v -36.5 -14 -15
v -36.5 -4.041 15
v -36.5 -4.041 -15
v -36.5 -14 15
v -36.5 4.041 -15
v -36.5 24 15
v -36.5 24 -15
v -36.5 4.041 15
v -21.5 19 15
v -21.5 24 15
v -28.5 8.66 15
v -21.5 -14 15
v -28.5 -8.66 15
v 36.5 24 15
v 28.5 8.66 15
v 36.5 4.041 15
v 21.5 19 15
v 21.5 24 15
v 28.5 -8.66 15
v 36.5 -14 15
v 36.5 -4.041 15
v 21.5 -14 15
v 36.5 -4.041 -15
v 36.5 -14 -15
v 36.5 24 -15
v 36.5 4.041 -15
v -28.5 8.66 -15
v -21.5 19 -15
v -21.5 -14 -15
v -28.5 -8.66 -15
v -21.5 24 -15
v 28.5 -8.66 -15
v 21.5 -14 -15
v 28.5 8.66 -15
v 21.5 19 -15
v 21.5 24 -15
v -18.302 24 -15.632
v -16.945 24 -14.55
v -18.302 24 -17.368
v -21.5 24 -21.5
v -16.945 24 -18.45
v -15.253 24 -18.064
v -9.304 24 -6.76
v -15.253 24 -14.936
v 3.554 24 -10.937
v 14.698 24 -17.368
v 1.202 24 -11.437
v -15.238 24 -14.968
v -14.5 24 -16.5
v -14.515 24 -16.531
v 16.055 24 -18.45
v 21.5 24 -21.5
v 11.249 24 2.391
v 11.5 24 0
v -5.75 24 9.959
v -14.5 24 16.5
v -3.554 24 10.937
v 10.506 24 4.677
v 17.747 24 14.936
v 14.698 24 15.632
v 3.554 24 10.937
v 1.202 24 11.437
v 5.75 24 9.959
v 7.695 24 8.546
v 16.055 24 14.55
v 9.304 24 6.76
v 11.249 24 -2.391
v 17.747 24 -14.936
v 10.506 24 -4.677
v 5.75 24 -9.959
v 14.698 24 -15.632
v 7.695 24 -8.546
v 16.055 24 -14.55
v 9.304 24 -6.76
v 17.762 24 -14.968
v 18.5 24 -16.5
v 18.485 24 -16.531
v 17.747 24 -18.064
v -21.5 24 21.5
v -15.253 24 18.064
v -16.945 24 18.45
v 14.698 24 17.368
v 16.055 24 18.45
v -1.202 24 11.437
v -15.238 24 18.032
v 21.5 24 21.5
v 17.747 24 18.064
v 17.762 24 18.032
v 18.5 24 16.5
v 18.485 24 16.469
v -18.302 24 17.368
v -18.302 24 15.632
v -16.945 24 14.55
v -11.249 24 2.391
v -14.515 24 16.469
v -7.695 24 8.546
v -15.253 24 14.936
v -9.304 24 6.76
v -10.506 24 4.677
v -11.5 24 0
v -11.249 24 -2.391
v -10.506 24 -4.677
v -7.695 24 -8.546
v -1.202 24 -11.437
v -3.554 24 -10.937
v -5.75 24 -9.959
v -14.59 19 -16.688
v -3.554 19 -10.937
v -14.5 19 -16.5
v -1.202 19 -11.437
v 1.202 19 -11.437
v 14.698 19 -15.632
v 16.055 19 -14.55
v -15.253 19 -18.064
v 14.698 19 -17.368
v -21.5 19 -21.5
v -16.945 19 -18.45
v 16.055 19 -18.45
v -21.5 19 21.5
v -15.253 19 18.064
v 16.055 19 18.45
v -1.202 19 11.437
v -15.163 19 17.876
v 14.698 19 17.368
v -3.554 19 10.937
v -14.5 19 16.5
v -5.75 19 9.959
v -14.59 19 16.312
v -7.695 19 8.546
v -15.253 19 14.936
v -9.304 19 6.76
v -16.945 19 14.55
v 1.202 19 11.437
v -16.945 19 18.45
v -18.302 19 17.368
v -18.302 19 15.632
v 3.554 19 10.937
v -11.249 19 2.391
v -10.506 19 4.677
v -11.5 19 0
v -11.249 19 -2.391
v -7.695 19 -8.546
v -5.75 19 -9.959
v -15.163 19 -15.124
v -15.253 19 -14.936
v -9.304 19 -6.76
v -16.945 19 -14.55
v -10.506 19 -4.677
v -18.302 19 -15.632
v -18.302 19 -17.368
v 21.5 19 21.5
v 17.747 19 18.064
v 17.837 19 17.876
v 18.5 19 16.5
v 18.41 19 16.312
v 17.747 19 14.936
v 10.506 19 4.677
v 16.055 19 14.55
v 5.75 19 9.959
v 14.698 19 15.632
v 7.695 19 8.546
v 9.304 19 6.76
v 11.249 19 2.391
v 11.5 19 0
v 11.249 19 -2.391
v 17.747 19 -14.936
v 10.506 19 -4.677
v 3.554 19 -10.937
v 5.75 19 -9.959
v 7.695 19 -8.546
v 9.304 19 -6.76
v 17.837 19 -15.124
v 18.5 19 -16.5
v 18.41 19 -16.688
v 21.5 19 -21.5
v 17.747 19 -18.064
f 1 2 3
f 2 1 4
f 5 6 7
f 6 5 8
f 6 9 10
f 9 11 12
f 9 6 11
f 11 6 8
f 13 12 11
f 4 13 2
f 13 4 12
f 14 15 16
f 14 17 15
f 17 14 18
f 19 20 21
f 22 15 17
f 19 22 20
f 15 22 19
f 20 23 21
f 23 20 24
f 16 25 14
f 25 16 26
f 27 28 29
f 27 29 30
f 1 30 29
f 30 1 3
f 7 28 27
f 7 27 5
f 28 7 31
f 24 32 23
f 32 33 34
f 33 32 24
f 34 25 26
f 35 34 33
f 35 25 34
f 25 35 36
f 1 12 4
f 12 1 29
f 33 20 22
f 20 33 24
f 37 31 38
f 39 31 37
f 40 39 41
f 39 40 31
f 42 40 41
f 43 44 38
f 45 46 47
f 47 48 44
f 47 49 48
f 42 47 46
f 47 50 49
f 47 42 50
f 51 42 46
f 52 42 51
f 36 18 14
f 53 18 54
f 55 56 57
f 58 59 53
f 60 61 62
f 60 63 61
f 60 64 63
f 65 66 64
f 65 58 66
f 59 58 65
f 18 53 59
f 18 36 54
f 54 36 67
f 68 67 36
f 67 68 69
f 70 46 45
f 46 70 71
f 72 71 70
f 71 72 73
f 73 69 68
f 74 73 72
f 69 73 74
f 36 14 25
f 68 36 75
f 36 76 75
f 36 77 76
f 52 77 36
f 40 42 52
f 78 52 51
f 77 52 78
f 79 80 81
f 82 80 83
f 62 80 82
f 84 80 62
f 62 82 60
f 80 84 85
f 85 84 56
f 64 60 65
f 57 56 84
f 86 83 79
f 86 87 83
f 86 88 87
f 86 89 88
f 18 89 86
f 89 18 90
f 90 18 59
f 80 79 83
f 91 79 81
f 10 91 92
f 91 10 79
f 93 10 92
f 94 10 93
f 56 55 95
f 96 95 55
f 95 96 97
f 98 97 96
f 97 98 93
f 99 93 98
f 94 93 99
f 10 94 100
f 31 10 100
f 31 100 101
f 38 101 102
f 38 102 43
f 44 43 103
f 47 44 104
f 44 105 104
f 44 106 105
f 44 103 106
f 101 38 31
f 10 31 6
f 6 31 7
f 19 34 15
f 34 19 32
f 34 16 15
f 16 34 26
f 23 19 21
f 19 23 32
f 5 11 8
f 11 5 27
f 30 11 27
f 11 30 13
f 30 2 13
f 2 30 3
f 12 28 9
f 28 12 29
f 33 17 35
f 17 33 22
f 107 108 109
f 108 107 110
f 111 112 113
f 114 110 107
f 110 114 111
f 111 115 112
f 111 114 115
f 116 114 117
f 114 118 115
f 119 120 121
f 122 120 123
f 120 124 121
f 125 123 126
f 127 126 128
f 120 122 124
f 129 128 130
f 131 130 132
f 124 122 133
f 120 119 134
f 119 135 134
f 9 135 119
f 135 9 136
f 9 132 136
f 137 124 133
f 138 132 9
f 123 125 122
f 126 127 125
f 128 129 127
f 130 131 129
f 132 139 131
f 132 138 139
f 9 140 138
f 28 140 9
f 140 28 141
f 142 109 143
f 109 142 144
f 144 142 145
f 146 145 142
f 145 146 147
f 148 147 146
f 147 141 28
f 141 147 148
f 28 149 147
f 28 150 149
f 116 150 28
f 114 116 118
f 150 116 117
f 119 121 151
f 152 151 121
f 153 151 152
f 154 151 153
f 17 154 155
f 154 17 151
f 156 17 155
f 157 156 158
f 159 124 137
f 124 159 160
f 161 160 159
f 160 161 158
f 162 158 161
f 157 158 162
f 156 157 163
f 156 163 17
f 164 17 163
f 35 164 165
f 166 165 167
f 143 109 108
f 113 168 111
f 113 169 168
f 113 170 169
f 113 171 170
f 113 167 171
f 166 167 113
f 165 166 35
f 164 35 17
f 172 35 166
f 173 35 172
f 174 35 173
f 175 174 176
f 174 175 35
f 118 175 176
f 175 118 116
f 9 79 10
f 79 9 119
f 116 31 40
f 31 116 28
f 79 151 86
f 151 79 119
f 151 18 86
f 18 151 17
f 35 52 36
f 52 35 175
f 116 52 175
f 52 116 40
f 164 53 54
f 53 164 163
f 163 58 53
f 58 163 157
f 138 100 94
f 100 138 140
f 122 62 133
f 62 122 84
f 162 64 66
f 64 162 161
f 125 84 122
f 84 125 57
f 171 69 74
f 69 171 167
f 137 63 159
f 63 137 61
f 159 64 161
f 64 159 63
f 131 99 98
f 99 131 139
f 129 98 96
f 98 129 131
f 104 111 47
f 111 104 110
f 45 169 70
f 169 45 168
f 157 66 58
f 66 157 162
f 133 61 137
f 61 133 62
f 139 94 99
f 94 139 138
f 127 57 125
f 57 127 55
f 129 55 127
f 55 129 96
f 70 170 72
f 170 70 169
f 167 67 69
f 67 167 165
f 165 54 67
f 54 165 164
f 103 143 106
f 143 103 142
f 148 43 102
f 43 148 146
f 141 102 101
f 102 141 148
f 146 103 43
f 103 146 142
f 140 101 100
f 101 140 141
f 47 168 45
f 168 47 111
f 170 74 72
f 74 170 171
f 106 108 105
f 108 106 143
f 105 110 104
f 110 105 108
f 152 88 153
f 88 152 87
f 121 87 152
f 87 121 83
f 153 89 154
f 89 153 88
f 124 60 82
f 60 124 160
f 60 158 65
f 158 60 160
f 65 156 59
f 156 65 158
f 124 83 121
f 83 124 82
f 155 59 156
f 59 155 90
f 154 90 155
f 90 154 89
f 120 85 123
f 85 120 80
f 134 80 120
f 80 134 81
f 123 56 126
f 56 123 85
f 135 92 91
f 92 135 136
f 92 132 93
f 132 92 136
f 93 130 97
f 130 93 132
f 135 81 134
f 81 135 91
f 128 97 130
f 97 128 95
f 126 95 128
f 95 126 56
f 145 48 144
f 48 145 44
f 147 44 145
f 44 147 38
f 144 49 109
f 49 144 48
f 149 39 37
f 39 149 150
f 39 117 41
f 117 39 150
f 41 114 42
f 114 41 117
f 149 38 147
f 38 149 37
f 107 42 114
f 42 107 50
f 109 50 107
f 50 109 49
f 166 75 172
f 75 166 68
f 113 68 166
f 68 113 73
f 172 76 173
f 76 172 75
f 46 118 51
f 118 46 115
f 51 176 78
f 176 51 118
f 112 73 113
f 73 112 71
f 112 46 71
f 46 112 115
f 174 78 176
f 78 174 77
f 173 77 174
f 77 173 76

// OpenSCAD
use <MCAD/gears.scad>

motor_width = 43;
motor_height = 43;
motor_depth = 33;

block_depth = 38;
block_width = motor_width + 30;
block_height = 30;

dovetail_radius_female = 10;
dovetail_radius_male = 9;
offset_from_center = block_depth / 2 - 14;

module screw() {
    screw_diameter = 4;
    rotate([90, 0, 0]) { cylinder(50, d=screw_diameter, center=true); }
}

// base
module base() {
    difference() {
        
        // Base
        translate([0, offset_from_center, 0]) {
            cube([block_width, block_depth, block_height], center=true);
        }
        
        // Dovetail 1
        translate([block_width / 2 - 3,0,0]) {
            cylinder(block_height + 2, 
                    r=dovetail_radius_female, $fn=3,
                    center=true);
        }
        
        // Dovetail 2
        translate([-block_width / 2 + 3, 0, 0]) {
            rotate([0, 180, 0]) {
                cylinder(block_height + 2, 
                r=dovetail_radius_female, $fn=3,
                center=true);
            }
        }
        
        // Motor section
        translate([0, offset_from_center - (block_depth - motor_depth) / 2, 0]) {
            cube([motor_width, motor_depth, motor_height], center=true);
        }
    }
    
    // Plate section
    translate([0, 
        offset_from_center + block_depth / 2 - 
        (block_depth - motor_depth) / 2]) {
         
        cube([motor_width, block_depth - motor_depth, motor_height], 
            center=true);
    }
    
}

module full_piece() {
    difference() {
        base();

        large_hole_diameter = 23;
        rotate([90, 0, 0]) {
            cylinder(100, d=large_hole_diameter, center=true);
        }
       

        screw_offset = 5;

        // Upper left
        translate([motor_width / 2 - screw_offset, 0, 
                   motor_height / 2 - screw_offset]) {
            screw();
        }

        // Upper right
        translate([-motor_width / 2 + screw_offset, 0, 
                   motor_height / 2 - screw_offset]) {
            screw();
        }

        // Lower right
        translate([-motor_width / 2 + screw_offset, 0, 
                   -motor_height / 2 + screw_offset]) {
            screw();
        }

        // Lower left
        translate([motor_width / 2 - screw_offset, 0, 
                   -motor_height / 2 + screw_offset]) {
            screw();
        }
    }
}

full_piece();
